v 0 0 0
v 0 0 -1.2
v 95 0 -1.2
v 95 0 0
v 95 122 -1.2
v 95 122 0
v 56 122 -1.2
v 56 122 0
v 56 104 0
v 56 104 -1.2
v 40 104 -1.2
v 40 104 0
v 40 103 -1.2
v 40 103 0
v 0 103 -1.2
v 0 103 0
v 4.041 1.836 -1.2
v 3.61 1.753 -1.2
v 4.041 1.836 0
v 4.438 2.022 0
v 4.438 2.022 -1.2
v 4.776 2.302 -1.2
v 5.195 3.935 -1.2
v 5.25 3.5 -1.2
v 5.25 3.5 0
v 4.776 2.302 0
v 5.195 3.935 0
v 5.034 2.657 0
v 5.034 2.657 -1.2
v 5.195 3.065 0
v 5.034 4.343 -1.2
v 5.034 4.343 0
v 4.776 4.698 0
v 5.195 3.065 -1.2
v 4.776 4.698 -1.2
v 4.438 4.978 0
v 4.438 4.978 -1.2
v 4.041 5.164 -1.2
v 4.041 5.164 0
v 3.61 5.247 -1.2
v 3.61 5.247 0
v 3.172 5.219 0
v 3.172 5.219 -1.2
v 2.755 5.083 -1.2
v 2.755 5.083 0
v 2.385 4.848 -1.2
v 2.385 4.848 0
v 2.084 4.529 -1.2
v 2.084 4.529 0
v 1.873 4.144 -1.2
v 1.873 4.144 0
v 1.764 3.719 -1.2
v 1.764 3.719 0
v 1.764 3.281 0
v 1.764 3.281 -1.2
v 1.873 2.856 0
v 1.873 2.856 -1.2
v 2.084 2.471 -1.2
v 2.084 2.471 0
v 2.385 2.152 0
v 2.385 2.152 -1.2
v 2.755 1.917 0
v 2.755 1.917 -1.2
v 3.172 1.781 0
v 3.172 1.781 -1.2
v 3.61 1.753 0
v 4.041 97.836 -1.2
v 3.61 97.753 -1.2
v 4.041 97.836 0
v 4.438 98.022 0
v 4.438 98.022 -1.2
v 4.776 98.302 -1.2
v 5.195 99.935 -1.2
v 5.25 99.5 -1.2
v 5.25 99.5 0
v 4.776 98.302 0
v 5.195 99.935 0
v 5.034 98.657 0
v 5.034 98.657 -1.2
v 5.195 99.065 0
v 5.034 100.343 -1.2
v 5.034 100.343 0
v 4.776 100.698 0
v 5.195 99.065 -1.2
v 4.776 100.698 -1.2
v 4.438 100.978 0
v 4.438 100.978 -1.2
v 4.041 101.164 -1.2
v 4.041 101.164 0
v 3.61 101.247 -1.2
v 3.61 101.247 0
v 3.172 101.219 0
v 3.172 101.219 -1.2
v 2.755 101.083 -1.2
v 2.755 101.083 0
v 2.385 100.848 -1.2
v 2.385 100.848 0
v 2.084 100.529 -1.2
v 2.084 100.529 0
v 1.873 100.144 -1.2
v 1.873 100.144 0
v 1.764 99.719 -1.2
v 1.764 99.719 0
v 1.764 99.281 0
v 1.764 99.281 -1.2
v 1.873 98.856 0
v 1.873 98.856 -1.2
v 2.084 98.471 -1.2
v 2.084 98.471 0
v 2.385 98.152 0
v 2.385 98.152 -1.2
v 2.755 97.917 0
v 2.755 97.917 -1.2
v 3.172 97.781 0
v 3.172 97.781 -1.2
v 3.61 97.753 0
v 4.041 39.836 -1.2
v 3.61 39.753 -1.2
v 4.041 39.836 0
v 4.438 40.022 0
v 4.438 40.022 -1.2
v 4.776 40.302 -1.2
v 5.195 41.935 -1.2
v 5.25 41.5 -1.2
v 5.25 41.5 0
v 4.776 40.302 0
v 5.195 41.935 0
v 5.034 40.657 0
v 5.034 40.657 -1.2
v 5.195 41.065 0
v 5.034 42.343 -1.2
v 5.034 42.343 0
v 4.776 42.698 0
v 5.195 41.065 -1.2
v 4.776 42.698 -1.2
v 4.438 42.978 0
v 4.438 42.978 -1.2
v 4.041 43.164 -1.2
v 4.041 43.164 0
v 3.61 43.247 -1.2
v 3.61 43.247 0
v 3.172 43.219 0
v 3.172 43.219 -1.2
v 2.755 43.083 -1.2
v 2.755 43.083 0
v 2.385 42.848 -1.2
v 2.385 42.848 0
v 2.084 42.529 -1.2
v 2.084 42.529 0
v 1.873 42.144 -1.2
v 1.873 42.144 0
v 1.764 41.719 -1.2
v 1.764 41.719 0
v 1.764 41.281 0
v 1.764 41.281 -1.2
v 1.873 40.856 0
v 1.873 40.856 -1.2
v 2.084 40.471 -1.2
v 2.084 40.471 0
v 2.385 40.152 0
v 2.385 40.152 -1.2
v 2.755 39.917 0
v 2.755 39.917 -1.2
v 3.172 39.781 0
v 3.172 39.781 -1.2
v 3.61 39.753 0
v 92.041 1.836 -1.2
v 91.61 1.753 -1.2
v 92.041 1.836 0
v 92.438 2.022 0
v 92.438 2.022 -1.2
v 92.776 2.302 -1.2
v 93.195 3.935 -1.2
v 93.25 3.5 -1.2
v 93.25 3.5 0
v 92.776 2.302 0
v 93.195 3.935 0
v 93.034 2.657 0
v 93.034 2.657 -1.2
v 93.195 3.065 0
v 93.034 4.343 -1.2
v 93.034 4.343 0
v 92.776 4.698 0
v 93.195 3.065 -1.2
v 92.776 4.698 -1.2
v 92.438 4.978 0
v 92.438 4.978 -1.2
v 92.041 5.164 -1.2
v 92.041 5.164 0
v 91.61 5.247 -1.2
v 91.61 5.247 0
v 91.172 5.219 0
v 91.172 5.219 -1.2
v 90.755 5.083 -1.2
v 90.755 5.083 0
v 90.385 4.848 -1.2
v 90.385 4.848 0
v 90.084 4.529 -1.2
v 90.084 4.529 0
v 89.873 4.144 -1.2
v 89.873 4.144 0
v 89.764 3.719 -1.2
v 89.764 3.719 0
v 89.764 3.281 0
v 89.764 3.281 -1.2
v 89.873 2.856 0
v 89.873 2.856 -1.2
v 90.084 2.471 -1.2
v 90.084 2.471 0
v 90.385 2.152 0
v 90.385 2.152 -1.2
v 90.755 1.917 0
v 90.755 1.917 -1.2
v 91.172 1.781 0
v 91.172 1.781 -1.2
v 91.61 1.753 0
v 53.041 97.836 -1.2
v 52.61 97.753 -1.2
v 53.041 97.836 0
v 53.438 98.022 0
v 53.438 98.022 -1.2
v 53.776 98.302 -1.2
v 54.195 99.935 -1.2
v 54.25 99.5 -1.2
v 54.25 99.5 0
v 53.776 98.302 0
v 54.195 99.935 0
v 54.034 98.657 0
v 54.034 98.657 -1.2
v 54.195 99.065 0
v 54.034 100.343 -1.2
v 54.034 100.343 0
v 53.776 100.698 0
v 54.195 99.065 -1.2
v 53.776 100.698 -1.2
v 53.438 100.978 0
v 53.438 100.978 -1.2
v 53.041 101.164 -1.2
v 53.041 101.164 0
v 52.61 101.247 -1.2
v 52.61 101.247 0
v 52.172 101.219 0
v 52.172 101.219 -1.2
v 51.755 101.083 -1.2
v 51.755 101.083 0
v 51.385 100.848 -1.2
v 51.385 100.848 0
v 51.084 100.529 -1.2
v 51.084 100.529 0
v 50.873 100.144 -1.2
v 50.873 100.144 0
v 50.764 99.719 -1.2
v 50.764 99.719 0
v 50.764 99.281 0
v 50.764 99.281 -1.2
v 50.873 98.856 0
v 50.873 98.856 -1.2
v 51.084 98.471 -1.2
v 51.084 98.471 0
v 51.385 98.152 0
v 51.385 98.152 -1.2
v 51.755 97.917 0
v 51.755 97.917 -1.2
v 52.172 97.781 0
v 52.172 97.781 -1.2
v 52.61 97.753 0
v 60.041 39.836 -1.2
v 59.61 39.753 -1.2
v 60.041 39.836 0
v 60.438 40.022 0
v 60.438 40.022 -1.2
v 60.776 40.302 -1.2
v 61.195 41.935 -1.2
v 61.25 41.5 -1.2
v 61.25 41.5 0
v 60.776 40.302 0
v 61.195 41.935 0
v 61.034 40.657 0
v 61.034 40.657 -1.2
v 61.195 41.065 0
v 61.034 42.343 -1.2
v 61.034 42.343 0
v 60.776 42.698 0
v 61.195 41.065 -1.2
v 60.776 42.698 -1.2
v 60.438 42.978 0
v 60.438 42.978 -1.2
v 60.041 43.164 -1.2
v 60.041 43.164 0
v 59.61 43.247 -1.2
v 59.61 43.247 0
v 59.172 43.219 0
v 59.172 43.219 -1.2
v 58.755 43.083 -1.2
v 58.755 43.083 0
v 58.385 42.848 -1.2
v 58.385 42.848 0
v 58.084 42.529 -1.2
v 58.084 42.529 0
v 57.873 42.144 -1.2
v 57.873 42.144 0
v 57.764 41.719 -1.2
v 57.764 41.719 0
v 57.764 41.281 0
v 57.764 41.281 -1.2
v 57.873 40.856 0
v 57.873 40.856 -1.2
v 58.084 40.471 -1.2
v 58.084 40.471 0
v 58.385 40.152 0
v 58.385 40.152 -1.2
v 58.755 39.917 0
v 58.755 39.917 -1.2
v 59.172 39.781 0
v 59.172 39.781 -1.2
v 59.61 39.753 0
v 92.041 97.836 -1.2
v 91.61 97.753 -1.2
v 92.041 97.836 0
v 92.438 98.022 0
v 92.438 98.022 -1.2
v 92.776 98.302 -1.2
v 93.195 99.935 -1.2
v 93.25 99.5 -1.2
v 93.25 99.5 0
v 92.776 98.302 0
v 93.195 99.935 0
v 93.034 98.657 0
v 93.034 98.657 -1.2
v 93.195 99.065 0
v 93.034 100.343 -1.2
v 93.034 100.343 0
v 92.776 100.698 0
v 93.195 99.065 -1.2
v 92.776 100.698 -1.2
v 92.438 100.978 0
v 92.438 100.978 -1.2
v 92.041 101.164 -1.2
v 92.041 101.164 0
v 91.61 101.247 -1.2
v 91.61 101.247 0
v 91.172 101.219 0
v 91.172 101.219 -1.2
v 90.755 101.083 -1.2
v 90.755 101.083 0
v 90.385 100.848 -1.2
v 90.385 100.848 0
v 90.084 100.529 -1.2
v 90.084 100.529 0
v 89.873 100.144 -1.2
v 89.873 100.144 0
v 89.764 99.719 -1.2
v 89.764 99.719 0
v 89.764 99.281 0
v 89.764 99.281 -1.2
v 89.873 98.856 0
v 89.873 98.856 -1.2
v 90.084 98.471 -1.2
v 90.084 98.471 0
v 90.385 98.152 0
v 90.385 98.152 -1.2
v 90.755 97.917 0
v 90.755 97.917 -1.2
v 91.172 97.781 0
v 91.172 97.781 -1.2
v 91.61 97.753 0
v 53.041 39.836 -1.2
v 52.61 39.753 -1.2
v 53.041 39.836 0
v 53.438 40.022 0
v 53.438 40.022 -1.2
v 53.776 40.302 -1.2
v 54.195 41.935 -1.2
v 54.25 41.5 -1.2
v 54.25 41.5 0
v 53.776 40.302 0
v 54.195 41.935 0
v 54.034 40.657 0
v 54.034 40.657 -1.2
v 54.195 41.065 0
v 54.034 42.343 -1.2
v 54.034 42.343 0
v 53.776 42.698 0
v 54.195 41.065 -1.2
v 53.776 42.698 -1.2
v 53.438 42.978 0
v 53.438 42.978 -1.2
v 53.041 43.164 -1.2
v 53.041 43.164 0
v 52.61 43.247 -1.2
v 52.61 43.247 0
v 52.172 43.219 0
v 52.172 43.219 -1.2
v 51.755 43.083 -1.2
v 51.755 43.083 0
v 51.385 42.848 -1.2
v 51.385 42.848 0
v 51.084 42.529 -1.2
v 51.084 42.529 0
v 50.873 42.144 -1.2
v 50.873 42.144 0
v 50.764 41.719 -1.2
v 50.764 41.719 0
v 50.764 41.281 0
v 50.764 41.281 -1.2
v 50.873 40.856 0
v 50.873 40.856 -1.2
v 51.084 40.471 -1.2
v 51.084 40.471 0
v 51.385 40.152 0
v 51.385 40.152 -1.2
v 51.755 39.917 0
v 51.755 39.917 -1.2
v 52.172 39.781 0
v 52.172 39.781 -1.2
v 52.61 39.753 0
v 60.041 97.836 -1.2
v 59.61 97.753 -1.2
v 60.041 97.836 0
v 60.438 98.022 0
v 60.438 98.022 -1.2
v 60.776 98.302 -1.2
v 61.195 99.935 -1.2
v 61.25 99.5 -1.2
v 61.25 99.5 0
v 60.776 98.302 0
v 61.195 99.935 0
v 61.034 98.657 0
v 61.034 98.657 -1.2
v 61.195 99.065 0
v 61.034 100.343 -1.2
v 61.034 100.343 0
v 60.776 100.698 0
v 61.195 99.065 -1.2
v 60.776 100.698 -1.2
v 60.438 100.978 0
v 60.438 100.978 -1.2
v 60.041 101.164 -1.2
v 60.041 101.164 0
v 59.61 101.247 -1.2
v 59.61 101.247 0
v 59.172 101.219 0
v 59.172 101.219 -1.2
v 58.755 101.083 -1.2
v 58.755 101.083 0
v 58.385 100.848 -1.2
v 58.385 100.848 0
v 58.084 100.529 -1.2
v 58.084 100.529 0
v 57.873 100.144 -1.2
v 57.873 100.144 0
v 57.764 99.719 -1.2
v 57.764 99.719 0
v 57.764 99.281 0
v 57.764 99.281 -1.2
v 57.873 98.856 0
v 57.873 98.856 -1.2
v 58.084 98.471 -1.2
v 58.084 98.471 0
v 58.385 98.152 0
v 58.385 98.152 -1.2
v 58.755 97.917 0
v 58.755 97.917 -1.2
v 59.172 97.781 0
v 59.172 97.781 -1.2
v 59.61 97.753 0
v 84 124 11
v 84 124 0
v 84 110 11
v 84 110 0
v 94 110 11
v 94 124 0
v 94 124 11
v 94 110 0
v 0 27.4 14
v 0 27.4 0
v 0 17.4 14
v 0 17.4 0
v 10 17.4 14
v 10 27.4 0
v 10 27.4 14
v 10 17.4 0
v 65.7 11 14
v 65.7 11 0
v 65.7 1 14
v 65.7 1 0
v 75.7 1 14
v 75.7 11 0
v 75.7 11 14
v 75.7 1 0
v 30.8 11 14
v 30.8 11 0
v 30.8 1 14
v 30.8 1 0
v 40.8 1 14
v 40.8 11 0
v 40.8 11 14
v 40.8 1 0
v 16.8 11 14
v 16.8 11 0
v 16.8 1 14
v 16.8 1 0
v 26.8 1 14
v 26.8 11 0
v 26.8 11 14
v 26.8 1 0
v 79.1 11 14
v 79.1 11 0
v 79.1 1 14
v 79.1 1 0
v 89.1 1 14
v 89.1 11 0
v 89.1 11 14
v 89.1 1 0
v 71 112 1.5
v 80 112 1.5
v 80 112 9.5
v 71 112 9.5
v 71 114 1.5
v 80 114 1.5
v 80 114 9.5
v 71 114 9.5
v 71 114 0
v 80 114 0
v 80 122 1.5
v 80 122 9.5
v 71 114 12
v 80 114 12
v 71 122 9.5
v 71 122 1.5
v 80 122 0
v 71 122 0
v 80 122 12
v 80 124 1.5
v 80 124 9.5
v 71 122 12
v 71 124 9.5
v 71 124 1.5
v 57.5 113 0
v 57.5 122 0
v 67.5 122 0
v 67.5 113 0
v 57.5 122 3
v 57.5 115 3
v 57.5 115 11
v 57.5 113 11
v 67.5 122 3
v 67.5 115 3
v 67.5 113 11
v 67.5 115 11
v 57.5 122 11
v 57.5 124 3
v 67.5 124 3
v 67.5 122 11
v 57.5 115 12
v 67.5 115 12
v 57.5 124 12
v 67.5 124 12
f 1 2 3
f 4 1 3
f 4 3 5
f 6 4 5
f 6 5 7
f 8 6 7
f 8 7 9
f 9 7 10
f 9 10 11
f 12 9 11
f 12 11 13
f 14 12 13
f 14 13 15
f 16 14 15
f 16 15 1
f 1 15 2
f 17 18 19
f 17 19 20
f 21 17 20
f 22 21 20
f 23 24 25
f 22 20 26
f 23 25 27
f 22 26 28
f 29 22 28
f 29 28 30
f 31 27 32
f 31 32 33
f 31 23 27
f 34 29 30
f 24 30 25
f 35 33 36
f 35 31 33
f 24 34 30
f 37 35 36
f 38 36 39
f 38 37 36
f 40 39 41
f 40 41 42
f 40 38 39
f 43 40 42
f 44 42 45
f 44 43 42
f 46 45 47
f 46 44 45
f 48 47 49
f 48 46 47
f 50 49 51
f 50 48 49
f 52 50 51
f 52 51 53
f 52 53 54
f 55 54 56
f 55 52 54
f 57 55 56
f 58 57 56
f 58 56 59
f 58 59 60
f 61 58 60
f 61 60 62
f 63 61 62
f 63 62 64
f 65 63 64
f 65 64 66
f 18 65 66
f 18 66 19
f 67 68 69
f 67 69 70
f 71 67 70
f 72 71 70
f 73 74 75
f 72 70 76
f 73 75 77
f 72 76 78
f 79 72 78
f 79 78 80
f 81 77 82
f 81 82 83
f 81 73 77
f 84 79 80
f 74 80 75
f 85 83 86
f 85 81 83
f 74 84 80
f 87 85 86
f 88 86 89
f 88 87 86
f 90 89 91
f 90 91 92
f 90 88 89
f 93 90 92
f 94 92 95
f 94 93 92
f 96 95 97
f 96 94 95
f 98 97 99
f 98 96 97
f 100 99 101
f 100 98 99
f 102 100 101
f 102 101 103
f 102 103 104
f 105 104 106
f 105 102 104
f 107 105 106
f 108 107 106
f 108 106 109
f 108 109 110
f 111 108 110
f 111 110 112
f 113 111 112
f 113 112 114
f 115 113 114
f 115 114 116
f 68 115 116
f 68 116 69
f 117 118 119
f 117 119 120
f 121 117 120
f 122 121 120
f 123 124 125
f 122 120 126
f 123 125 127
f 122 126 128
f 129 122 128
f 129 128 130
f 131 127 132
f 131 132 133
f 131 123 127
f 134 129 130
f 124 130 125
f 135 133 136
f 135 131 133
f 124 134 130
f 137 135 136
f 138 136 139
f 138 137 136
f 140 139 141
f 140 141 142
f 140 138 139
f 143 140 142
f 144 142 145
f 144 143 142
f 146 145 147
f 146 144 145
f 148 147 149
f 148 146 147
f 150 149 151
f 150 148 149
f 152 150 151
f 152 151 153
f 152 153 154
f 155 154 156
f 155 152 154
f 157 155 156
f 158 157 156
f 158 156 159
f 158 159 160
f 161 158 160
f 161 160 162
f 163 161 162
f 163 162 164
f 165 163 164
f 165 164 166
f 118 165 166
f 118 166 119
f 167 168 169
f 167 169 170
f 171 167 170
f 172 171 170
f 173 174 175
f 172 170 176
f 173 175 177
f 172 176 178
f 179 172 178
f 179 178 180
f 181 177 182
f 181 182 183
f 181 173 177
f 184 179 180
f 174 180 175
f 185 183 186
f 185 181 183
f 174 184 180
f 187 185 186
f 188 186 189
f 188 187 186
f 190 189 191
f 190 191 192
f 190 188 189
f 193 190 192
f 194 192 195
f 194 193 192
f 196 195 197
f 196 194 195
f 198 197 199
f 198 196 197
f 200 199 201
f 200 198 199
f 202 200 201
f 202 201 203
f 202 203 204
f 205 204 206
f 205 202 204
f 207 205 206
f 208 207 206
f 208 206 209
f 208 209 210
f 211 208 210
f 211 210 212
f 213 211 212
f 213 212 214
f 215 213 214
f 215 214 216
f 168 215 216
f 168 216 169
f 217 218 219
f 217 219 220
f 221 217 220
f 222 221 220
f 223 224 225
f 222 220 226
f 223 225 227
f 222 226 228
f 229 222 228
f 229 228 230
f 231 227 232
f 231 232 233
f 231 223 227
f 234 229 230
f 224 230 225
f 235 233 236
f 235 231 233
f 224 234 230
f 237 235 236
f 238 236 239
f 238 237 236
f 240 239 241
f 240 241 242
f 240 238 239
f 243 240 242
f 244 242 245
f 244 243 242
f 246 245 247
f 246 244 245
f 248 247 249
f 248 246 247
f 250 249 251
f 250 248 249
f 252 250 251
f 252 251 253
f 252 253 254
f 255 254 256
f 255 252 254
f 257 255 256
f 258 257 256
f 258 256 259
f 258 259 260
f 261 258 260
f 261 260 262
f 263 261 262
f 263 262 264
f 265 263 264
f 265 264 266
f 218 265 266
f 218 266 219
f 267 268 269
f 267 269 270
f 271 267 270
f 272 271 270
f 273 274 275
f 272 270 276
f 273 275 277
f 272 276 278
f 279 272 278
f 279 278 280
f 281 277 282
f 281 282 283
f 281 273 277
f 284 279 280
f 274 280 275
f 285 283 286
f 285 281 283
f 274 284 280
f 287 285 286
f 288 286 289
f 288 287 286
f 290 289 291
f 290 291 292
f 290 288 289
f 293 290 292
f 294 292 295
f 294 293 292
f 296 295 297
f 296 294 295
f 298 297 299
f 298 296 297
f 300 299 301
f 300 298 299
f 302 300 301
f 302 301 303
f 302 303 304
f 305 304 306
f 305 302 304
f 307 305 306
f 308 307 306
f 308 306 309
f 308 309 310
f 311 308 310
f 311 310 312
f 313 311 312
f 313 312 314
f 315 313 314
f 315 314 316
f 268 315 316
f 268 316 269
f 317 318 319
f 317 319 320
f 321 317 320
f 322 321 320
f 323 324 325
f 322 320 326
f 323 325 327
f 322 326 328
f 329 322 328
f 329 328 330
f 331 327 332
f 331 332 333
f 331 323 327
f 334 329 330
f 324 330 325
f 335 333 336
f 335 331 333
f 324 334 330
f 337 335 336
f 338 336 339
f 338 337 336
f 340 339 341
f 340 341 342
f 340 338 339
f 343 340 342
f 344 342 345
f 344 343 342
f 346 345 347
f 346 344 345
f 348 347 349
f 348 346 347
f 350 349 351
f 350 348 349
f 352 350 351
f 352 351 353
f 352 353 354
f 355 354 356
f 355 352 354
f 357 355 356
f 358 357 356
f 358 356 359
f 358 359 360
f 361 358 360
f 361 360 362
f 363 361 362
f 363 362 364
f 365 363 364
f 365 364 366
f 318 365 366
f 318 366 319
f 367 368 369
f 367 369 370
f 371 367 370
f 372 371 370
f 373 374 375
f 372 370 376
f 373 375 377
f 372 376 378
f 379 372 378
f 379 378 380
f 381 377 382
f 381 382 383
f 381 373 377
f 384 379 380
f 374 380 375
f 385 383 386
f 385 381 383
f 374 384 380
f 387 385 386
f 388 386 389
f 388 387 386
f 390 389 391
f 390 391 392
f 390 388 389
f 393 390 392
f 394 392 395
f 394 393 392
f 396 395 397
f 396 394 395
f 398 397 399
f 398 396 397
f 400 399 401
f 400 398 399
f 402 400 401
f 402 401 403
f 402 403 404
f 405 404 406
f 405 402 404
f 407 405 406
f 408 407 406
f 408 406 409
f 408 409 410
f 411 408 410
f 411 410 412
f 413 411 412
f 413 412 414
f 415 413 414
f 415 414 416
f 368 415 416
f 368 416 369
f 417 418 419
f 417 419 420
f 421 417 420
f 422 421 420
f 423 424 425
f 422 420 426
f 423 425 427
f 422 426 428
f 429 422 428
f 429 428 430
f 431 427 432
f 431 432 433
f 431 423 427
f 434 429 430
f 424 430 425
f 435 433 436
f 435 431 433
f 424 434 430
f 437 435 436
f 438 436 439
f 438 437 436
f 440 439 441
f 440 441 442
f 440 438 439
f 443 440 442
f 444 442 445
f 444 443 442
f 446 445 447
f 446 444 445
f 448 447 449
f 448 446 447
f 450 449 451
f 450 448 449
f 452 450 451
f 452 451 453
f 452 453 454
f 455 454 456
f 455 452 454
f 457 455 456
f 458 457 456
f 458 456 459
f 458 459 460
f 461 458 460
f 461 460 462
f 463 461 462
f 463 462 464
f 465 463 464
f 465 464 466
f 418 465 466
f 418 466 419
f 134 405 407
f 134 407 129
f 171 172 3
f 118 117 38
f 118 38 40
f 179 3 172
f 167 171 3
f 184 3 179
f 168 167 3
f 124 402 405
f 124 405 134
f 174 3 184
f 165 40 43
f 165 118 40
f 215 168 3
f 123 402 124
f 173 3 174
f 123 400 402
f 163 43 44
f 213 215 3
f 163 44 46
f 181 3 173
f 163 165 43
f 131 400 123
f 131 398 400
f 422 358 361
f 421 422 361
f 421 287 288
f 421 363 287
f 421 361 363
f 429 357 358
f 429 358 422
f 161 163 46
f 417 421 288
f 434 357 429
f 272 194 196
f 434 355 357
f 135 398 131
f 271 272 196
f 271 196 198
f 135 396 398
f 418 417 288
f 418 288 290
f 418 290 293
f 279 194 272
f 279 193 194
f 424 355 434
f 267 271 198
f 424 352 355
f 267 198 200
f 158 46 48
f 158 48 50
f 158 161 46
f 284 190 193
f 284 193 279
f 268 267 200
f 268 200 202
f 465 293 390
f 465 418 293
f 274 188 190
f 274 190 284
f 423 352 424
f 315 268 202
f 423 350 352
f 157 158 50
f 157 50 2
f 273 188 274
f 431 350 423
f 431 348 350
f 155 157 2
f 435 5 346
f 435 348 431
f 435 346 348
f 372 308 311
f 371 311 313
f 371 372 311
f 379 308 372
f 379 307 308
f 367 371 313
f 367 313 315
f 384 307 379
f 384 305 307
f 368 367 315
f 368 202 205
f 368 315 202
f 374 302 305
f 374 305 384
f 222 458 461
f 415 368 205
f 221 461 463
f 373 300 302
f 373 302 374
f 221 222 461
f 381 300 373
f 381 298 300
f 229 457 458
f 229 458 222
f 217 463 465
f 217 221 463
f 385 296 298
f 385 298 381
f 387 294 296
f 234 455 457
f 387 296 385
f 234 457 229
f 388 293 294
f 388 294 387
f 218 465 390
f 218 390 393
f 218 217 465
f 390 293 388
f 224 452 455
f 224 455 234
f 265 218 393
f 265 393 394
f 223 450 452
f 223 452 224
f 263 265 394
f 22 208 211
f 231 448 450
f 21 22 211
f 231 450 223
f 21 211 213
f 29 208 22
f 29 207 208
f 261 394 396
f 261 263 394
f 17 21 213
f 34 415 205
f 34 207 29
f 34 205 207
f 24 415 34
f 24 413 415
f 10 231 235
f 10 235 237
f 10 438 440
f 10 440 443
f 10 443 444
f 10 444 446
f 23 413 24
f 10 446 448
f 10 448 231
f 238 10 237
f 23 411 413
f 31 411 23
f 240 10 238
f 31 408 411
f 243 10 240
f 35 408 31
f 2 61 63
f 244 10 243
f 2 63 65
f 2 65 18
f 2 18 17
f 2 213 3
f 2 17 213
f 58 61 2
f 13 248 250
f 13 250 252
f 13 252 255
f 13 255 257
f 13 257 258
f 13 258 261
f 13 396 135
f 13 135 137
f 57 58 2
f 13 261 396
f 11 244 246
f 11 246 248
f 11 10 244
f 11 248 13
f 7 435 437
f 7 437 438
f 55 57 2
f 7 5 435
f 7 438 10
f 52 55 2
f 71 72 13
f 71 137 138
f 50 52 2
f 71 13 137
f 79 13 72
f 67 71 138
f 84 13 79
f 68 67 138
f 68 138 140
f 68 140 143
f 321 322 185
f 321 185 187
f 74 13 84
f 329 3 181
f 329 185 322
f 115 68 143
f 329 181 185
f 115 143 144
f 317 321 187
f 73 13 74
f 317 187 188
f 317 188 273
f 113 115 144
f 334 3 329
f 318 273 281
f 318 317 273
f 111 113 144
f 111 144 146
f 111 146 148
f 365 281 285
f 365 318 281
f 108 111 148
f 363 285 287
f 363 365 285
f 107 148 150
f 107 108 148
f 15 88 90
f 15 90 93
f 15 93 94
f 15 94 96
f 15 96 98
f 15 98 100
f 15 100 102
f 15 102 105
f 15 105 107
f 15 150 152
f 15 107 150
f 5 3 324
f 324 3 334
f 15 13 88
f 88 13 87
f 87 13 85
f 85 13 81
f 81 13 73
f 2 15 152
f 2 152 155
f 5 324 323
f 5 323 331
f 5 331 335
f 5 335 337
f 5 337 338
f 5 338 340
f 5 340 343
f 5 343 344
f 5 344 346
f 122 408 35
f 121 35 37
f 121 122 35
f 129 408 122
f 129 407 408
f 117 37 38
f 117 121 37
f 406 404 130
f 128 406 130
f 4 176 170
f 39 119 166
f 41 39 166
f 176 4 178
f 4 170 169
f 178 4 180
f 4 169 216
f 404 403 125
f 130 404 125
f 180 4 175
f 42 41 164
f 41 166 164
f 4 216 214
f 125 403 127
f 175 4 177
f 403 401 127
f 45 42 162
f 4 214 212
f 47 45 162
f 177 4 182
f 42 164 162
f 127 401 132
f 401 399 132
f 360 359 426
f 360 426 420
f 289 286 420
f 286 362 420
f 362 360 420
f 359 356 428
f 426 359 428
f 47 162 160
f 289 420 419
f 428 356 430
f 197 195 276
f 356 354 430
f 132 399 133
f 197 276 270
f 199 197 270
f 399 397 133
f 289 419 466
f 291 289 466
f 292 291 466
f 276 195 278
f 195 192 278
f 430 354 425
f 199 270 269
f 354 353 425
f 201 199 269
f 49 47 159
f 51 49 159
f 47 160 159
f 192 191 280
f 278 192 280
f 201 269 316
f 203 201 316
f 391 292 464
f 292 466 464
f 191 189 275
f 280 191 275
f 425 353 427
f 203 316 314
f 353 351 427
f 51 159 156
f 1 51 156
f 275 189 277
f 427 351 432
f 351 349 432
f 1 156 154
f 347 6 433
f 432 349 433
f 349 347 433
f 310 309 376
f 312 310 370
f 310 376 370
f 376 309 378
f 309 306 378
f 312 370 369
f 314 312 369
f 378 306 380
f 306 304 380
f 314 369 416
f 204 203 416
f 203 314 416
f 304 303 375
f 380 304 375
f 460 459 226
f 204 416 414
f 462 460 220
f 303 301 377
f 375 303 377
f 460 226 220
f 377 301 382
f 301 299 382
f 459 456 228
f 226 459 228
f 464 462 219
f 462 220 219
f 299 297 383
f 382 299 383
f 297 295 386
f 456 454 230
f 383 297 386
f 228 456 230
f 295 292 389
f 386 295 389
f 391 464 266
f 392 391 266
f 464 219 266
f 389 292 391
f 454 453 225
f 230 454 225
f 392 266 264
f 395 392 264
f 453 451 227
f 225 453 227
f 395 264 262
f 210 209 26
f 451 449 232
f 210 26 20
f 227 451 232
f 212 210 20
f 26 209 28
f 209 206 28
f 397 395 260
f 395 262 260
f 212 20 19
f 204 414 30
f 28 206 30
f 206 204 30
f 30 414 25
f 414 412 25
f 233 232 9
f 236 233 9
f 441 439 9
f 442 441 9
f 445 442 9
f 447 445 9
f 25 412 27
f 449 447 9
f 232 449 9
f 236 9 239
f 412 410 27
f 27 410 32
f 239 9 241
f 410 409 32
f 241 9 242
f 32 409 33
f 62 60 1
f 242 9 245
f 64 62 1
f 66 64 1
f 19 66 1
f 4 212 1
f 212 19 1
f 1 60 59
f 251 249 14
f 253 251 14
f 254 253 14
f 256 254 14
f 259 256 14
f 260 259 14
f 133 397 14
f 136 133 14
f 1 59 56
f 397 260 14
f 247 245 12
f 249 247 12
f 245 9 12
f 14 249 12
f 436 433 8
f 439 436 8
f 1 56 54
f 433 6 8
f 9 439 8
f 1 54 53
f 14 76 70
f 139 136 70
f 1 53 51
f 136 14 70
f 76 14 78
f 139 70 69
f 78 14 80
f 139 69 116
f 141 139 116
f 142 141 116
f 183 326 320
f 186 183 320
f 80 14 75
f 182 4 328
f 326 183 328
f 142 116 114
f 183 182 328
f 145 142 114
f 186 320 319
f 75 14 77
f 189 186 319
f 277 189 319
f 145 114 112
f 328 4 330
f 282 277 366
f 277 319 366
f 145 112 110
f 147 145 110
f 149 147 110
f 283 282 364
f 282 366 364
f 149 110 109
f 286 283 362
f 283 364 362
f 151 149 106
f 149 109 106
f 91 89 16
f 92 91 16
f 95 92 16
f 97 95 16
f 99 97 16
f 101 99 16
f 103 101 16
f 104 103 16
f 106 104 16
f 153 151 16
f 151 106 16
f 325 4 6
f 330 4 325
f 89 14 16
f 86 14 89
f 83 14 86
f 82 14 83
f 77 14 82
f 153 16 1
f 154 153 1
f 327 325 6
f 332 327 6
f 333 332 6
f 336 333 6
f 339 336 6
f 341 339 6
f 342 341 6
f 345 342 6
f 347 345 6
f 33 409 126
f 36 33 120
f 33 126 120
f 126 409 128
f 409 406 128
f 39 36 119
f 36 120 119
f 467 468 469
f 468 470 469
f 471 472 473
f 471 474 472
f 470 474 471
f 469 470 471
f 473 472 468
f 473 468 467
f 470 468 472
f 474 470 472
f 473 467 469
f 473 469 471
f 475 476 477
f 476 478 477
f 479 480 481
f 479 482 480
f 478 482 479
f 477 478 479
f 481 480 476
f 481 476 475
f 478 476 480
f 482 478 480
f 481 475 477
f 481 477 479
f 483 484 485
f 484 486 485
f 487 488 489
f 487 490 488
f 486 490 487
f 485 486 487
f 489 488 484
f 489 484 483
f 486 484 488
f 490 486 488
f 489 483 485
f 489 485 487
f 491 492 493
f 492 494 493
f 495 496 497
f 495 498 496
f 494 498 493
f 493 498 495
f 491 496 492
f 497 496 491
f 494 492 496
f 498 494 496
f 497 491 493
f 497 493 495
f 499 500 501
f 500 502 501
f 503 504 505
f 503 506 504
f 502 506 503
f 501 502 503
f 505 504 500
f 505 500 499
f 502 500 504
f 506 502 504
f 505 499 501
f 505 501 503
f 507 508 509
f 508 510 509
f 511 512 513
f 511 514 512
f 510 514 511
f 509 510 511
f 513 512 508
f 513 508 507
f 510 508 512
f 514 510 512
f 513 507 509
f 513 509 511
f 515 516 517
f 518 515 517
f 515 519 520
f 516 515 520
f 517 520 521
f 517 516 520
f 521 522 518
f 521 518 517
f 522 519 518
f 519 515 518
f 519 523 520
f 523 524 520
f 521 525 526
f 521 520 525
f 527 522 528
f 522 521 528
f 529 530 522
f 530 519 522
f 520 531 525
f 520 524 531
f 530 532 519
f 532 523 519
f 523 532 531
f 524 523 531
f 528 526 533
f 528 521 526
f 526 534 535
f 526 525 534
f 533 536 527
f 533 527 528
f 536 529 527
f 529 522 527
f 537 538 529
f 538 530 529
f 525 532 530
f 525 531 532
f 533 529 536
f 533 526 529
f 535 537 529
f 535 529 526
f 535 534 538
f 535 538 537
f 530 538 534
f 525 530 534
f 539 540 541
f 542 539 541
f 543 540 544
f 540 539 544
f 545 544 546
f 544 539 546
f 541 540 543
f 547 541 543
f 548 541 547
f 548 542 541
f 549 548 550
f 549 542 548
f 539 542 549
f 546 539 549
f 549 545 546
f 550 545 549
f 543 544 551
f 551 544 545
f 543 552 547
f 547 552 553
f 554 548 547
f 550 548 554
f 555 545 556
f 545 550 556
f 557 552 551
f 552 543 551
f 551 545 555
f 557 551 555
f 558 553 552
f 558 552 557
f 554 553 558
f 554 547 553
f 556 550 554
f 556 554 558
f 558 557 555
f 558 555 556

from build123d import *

# Parameters (mm, degrees)
SKETCH_R     = 1.75
PAD_DEPTH    = 1.2
BOX_W        = 10
BOX_H        = 10
BOX_DEPTH    = 14
BOX001_W     = 10
BOX001_H     = 10
BOX001_DEPTH = 14
BOX002_W     = 10
BOX002_H     = 10
BOX002_DEPTH = 14
BOX003_W     = 10
BOX003_H     = 10
BOX003_DEPTH = 14
BOX004_W     = 10
BOX004_H     = 10
BOX004_DEPTH = 14
BOX005_W     = 10
BOX005_H     = 14
BOX005_DEPTH = 11
BOX007_W     = 9
BOX007_H     = 8
BOX007_DEPTH = 12
BOX006_W     = 9
BOX006_H     = 12
BOX006_DEPTH = 8
BOX009_W     = 10
BOX009_H     = 9
BOX009_DEPTH = 9
BOX008_W     = 10
BOX008_H     = 9
BOX008_DEPTH = 11


with BuildPart() as pad:
    # Sketch → Pad (new body)
    with BuildSketch(Plane.XY.offset(-1.2)):
        Polygon((0, 0), (95, 0), (95, 122), (56, 122), (56, 104), (40, 104), (40, 103), (0, 103), align=None)
        with Locations((3.5, 99.5)):
            Circle(SKETCH_R, mode=Mode.SUBTRACT)
        with Locations((3.5, 3.5)):
            Circle(SKETCH_R, mode=Mode.SUBTRACT)
        with Locations((91.5, 3.5)):
            Circle(SKETCH_R, mode=Mode.SUBTRACT)
        with Locations((52.5, 99.5)):
            Circle(SKETCH_R, mode=Mode.SUBTRACT)
        with Locations((59.5, 99.5)):
            Circle(SKETCH_R, mode=Mode.SUBTRACT)
        with Locations((91.5, 99.5)):
            Circle(SKETCH_R, mode=Mode.SUBTRACT)
        with Locations((3.5, 41.5)):
            Circle(SKETCH_R, mode=Mode.SUBTRACT)
        with Locations((52.5, 41.5)):
            Circle(SKETCH_R, mode=Mode.SUBTRACT)
        with Locations((59.5, 41.5)):
            Circle(SKETCH_R, mode=Mode.SUBTRACT)
    extrude(amount=PAD_DEPTH)


with BuildPart() as speaker1:
    # Box → Box (new body)
    with BuildSketch(Plane(origin=(16.8, 1, 0), x_dir=(1, 0, 0), z_dir=(0, 0, 1))):
        with Locations((5, 5)):
            Rectangle(BOX_W, BOX_H)
    extrude(amount=BOX_DEPTH)


with BuildPart() as speaker2:
    # Box001 → Box001 (new body)
    with BuildSketch(Plane(origin=(30.8, 1, 0), x_dir=(1, 0, 0), z_dir=(0, 0, 1))):
        with Locations((5, 5)):
            Rectangle(BOX001_W, BOX001_H)
    extrude(amount=BOX001_DEPTH)


with BuildPart() as speaker3:
    # Box002 → Box002 (new body)
    with BuildSketch(Plane(origin=(65.7, 1, 0), x_dir=(1, 0, 0), z_dir=(0, 0, 1))):
        with Locations((5, 5)):
            Rectangle(BOX002_W, BOX002_H)
    extrude(amount=BOX002_DEPTH)


with BuildPart() as speaker4:
    # Box003 → Box003 (new body)
    with BuildSketch(Plane(origin=(79.1, 1, 0), x_dir=(1, 0, 0), z_dir=(0, 0, 1))):
        with Locations((5, 5)):
            Rectangle(BOX003_W, BOX003_H)
    extrude(amount=BOX003_DEPTH)


with BuildPart() as power2:
    # Box004 → Box004 (new body)
    with BuildSketch(Plane(origin=(0, 17.4, 0), x_dir=(1, 0, 0), z_dir=(0, 0, 1))):
        with Locations((5, 5)):
            Rectangle(BOX004_W, BOX004_H)
    extrude(amount=BOX004_DEPTH)


with BuildPart() as power:
    # Box005 → Box005 (new body)
    with BuildSketch(Plane(origin=(84, 110, 0), x_dir=(1, 0, 0), z_dir=(0, 0, 1))):
        with Locations((5, 7)):
            Rectangle(BOX005_W, BOX005_H)
    extrude(amount=BOX005_DEPTH)


with BuildPart() as w_rfel007:
    # Box007 → Box007 (new body)
    with BuildSketch(Plane(origin=(0, 2, 0), x_dir=(1, 0, 0), z_dir=(0, 0, 1))):
        with Locations((4.5, 4)):
            Rectangle(BOX007_W, BOX007_H)
    extrude(amount=BOX007_DEPTH)


with BuildPart() as spdif2:
    # Box006 → Box006 (new body)
    with BuildSketch(Plane.XY.offset(1.5)):
        with Locations((4.5, 6)):
            Rectangle(BOX006_W, BOX006_H)
    extrude(amount=BOX006_DEPTH)

    # Fusion: union Würfel007
    add(w_rfel007.part)


with BuildPart() as spdif2_1:
    # Fusion placement: moved
    add(spdif2.part.moved(Location((71, 112, 0))))


with BuildPart() as w_rfel009:
    # Box009 → Box009 (new body)
    with BuildSketch(Plane(origin=(0, 2, 3), x_dir=(1, 0, 0), z_dir=(0, 0, 1))):
        with Locations((5, 4.5)):
            Rectangle(BOX009_W, BOX009_H)
    extrude(amount=BOX009_DEPTH)


with BuildPart() as spdif1:
    # Box008 → Box008 (new body)
    with BuildSketch(Plane.XY):
        with Locations((5, 4.5)):
            Rectangle(BOX008_W, BOX008_H)
    extrude(amount=BOX008_DEPTH)

    # Fusion001: union Würfel009
    add(w_rfel009.part)


with BuildPart() as spdif1_1:
    # Fusion001 placement: moved
    add(spdif1.part.moved(Location((57.5, 113, 0))))


solid = Compound([pad.part, speaker1.part, speaker2.part, speaker3.part, speaker4.part, power2.part, power.part, spdif2_1.part, spdif1_1.part])
